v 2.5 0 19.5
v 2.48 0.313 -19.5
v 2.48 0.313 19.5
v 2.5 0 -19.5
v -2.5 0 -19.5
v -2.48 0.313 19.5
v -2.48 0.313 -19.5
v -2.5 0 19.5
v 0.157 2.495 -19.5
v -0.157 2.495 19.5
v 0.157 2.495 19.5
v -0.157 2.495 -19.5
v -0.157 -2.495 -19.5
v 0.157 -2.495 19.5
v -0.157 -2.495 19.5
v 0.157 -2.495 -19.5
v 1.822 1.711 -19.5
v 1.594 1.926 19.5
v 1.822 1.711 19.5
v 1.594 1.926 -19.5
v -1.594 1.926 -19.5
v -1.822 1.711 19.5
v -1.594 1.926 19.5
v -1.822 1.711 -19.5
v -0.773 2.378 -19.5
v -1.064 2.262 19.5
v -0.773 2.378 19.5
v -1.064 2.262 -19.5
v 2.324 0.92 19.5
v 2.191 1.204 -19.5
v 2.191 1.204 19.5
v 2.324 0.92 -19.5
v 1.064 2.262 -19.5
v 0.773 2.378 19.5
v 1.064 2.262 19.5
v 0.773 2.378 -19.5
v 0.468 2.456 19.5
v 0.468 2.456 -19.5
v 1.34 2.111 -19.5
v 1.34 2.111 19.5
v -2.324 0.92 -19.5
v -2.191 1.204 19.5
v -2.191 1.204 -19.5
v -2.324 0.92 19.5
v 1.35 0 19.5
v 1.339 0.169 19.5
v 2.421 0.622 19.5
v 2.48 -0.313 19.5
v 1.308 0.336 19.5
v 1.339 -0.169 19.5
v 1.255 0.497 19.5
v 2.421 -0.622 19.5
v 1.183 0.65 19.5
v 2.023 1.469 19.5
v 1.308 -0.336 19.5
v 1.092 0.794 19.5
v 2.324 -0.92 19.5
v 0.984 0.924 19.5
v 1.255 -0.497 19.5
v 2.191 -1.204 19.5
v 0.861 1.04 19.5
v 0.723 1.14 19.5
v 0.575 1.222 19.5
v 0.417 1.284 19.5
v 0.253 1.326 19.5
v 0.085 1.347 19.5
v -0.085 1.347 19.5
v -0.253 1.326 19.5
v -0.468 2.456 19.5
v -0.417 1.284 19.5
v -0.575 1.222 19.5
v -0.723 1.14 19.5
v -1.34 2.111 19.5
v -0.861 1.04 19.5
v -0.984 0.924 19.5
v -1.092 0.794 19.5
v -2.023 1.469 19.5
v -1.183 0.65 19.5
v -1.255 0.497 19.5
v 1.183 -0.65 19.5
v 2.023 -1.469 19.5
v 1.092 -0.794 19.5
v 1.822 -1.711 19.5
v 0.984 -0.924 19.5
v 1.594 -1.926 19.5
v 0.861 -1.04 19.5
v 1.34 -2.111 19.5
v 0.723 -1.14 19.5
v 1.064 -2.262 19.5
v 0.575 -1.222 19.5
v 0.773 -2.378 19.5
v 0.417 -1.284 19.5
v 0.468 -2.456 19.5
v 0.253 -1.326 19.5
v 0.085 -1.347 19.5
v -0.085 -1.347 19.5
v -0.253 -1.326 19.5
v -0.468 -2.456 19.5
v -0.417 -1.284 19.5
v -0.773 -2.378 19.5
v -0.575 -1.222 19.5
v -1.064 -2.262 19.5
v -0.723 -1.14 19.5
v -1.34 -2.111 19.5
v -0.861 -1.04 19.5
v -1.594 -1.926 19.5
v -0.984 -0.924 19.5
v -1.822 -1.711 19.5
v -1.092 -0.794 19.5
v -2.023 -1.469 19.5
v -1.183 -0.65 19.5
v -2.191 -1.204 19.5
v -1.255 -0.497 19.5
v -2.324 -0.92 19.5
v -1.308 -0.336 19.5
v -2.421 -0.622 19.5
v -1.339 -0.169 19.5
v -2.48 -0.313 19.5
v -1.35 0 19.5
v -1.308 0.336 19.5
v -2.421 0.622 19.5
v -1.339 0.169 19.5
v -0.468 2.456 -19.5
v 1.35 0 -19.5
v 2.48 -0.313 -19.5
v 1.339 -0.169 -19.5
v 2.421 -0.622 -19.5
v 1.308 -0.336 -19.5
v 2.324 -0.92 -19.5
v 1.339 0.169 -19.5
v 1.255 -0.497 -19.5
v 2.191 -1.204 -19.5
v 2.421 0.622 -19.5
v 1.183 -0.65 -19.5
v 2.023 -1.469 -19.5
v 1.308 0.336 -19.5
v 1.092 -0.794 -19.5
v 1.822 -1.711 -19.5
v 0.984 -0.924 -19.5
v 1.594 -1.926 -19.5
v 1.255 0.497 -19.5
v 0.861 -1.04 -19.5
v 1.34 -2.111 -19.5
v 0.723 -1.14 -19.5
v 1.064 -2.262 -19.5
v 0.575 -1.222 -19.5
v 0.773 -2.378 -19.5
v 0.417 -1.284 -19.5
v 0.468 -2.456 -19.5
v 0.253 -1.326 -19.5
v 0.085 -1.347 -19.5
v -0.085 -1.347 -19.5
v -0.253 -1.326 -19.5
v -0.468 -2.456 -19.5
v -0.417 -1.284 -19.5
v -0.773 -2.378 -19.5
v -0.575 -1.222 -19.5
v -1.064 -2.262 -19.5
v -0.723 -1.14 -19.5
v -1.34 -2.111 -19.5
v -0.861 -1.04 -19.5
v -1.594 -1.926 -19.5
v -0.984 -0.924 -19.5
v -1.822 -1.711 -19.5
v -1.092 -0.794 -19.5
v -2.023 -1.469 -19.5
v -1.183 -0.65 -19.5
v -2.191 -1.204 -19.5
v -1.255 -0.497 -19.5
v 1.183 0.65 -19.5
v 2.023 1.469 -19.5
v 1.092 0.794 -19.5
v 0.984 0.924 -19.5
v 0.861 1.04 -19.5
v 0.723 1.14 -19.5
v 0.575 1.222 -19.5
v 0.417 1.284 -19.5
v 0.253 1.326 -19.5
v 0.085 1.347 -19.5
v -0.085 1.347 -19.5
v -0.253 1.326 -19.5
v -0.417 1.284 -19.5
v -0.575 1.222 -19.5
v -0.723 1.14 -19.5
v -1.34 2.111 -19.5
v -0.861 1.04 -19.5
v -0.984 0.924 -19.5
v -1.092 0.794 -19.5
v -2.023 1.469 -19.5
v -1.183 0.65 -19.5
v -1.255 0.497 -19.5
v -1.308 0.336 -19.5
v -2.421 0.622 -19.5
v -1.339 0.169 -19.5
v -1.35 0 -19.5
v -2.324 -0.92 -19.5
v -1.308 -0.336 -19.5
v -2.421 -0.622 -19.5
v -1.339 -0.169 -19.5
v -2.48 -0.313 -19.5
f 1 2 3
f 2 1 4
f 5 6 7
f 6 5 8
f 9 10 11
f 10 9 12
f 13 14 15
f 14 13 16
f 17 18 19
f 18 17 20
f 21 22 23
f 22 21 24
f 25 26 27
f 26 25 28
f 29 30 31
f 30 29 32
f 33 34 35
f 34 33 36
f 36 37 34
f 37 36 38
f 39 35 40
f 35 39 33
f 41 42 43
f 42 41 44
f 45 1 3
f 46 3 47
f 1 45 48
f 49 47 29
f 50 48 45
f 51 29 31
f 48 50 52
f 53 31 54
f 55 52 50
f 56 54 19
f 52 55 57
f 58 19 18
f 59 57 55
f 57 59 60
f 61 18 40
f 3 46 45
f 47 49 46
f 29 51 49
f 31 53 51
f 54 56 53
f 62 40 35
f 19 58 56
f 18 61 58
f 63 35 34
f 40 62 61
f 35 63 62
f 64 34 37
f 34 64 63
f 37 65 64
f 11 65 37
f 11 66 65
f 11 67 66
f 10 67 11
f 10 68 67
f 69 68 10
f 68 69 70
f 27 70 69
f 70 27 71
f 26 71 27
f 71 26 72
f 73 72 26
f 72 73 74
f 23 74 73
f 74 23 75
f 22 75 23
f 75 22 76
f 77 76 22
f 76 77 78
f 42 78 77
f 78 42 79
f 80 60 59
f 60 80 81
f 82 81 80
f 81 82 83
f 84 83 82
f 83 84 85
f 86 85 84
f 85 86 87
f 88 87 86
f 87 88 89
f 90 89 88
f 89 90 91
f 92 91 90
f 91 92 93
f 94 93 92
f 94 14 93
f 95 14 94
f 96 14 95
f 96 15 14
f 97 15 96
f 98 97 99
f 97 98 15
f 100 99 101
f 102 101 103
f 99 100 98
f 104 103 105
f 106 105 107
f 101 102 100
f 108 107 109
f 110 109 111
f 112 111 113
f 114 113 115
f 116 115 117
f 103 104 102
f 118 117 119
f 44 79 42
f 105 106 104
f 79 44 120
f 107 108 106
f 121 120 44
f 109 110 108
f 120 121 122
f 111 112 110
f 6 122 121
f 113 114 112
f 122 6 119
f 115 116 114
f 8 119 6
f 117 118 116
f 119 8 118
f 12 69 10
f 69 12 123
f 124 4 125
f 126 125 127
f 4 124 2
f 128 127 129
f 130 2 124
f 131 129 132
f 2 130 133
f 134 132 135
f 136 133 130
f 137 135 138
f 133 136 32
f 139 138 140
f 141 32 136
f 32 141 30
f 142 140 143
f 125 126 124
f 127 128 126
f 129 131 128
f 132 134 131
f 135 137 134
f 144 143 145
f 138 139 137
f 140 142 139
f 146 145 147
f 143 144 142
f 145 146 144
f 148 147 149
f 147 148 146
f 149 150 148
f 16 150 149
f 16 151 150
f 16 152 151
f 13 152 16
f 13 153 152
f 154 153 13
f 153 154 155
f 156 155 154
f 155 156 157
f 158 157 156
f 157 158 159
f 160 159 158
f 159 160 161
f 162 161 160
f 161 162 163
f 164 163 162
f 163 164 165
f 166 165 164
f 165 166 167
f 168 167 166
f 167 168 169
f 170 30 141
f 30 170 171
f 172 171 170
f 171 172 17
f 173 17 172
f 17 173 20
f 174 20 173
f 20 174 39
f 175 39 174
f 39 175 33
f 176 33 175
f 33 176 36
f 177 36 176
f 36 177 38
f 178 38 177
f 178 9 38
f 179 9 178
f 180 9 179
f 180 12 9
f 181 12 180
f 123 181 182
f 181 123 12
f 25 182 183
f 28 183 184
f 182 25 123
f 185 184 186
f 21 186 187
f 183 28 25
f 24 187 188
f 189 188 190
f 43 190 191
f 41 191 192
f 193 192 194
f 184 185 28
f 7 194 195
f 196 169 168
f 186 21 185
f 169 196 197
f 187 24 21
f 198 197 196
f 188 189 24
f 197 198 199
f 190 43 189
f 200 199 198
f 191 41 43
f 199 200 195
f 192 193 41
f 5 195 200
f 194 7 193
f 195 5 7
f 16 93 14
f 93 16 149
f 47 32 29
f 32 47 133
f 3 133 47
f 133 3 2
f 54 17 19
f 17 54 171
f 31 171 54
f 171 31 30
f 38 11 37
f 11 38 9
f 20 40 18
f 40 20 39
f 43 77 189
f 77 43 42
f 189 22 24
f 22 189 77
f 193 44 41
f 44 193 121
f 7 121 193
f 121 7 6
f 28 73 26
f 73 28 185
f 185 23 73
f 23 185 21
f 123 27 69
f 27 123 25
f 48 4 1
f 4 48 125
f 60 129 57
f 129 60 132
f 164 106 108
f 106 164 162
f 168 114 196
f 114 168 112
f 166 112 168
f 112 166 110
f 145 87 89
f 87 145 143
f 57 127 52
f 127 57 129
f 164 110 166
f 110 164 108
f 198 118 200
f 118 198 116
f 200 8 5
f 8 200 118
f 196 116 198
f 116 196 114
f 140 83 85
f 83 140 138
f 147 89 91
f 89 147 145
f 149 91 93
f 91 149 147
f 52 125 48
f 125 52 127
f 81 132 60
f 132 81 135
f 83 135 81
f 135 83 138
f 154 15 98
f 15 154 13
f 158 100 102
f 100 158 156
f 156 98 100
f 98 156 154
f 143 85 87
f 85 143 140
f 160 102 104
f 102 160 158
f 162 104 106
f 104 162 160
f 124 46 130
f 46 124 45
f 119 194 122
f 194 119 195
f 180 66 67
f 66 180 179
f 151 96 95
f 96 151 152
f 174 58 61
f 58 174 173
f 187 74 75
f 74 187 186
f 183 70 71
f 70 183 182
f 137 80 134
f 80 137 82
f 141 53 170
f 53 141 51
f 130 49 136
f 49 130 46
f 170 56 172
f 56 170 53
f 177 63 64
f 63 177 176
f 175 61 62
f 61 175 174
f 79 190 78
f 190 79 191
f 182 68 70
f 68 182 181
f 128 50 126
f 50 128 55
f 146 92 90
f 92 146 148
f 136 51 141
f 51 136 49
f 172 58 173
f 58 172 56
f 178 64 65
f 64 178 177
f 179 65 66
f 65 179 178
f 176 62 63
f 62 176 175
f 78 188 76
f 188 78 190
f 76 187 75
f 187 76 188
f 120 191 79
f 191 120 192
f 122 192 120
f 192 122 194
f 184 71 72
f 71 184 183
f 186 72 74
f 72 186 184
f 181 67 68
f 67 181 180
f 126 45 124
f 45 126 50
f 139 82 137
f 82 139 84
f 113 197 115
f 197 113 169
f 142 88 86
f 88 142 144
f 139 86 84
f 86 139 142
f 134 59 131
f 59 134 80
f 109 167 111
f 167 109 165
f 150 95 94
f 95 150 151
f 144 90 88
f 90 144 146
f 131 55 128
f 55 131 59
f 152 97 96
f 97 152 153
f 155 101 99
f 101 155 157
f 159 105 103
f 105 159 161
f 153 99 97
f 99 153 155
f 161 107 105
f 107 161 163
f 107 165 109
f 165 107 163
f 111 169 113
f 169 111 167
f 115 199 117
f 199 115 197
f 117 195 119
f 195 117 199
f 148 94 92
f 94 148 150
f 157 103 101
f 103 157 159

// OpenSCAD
$fn = 50;


difference() {
	union() {
		translate(v = [0, 0, -19.5000000000]) {
			cylinder(h = 39, r = 2.5000000000);
		}
	}
	union() {
		translate(v = [0, 0, -100.0000000000]) {
			cylinder(h = 200, r = 1.3500000000);
		}
	}
}
